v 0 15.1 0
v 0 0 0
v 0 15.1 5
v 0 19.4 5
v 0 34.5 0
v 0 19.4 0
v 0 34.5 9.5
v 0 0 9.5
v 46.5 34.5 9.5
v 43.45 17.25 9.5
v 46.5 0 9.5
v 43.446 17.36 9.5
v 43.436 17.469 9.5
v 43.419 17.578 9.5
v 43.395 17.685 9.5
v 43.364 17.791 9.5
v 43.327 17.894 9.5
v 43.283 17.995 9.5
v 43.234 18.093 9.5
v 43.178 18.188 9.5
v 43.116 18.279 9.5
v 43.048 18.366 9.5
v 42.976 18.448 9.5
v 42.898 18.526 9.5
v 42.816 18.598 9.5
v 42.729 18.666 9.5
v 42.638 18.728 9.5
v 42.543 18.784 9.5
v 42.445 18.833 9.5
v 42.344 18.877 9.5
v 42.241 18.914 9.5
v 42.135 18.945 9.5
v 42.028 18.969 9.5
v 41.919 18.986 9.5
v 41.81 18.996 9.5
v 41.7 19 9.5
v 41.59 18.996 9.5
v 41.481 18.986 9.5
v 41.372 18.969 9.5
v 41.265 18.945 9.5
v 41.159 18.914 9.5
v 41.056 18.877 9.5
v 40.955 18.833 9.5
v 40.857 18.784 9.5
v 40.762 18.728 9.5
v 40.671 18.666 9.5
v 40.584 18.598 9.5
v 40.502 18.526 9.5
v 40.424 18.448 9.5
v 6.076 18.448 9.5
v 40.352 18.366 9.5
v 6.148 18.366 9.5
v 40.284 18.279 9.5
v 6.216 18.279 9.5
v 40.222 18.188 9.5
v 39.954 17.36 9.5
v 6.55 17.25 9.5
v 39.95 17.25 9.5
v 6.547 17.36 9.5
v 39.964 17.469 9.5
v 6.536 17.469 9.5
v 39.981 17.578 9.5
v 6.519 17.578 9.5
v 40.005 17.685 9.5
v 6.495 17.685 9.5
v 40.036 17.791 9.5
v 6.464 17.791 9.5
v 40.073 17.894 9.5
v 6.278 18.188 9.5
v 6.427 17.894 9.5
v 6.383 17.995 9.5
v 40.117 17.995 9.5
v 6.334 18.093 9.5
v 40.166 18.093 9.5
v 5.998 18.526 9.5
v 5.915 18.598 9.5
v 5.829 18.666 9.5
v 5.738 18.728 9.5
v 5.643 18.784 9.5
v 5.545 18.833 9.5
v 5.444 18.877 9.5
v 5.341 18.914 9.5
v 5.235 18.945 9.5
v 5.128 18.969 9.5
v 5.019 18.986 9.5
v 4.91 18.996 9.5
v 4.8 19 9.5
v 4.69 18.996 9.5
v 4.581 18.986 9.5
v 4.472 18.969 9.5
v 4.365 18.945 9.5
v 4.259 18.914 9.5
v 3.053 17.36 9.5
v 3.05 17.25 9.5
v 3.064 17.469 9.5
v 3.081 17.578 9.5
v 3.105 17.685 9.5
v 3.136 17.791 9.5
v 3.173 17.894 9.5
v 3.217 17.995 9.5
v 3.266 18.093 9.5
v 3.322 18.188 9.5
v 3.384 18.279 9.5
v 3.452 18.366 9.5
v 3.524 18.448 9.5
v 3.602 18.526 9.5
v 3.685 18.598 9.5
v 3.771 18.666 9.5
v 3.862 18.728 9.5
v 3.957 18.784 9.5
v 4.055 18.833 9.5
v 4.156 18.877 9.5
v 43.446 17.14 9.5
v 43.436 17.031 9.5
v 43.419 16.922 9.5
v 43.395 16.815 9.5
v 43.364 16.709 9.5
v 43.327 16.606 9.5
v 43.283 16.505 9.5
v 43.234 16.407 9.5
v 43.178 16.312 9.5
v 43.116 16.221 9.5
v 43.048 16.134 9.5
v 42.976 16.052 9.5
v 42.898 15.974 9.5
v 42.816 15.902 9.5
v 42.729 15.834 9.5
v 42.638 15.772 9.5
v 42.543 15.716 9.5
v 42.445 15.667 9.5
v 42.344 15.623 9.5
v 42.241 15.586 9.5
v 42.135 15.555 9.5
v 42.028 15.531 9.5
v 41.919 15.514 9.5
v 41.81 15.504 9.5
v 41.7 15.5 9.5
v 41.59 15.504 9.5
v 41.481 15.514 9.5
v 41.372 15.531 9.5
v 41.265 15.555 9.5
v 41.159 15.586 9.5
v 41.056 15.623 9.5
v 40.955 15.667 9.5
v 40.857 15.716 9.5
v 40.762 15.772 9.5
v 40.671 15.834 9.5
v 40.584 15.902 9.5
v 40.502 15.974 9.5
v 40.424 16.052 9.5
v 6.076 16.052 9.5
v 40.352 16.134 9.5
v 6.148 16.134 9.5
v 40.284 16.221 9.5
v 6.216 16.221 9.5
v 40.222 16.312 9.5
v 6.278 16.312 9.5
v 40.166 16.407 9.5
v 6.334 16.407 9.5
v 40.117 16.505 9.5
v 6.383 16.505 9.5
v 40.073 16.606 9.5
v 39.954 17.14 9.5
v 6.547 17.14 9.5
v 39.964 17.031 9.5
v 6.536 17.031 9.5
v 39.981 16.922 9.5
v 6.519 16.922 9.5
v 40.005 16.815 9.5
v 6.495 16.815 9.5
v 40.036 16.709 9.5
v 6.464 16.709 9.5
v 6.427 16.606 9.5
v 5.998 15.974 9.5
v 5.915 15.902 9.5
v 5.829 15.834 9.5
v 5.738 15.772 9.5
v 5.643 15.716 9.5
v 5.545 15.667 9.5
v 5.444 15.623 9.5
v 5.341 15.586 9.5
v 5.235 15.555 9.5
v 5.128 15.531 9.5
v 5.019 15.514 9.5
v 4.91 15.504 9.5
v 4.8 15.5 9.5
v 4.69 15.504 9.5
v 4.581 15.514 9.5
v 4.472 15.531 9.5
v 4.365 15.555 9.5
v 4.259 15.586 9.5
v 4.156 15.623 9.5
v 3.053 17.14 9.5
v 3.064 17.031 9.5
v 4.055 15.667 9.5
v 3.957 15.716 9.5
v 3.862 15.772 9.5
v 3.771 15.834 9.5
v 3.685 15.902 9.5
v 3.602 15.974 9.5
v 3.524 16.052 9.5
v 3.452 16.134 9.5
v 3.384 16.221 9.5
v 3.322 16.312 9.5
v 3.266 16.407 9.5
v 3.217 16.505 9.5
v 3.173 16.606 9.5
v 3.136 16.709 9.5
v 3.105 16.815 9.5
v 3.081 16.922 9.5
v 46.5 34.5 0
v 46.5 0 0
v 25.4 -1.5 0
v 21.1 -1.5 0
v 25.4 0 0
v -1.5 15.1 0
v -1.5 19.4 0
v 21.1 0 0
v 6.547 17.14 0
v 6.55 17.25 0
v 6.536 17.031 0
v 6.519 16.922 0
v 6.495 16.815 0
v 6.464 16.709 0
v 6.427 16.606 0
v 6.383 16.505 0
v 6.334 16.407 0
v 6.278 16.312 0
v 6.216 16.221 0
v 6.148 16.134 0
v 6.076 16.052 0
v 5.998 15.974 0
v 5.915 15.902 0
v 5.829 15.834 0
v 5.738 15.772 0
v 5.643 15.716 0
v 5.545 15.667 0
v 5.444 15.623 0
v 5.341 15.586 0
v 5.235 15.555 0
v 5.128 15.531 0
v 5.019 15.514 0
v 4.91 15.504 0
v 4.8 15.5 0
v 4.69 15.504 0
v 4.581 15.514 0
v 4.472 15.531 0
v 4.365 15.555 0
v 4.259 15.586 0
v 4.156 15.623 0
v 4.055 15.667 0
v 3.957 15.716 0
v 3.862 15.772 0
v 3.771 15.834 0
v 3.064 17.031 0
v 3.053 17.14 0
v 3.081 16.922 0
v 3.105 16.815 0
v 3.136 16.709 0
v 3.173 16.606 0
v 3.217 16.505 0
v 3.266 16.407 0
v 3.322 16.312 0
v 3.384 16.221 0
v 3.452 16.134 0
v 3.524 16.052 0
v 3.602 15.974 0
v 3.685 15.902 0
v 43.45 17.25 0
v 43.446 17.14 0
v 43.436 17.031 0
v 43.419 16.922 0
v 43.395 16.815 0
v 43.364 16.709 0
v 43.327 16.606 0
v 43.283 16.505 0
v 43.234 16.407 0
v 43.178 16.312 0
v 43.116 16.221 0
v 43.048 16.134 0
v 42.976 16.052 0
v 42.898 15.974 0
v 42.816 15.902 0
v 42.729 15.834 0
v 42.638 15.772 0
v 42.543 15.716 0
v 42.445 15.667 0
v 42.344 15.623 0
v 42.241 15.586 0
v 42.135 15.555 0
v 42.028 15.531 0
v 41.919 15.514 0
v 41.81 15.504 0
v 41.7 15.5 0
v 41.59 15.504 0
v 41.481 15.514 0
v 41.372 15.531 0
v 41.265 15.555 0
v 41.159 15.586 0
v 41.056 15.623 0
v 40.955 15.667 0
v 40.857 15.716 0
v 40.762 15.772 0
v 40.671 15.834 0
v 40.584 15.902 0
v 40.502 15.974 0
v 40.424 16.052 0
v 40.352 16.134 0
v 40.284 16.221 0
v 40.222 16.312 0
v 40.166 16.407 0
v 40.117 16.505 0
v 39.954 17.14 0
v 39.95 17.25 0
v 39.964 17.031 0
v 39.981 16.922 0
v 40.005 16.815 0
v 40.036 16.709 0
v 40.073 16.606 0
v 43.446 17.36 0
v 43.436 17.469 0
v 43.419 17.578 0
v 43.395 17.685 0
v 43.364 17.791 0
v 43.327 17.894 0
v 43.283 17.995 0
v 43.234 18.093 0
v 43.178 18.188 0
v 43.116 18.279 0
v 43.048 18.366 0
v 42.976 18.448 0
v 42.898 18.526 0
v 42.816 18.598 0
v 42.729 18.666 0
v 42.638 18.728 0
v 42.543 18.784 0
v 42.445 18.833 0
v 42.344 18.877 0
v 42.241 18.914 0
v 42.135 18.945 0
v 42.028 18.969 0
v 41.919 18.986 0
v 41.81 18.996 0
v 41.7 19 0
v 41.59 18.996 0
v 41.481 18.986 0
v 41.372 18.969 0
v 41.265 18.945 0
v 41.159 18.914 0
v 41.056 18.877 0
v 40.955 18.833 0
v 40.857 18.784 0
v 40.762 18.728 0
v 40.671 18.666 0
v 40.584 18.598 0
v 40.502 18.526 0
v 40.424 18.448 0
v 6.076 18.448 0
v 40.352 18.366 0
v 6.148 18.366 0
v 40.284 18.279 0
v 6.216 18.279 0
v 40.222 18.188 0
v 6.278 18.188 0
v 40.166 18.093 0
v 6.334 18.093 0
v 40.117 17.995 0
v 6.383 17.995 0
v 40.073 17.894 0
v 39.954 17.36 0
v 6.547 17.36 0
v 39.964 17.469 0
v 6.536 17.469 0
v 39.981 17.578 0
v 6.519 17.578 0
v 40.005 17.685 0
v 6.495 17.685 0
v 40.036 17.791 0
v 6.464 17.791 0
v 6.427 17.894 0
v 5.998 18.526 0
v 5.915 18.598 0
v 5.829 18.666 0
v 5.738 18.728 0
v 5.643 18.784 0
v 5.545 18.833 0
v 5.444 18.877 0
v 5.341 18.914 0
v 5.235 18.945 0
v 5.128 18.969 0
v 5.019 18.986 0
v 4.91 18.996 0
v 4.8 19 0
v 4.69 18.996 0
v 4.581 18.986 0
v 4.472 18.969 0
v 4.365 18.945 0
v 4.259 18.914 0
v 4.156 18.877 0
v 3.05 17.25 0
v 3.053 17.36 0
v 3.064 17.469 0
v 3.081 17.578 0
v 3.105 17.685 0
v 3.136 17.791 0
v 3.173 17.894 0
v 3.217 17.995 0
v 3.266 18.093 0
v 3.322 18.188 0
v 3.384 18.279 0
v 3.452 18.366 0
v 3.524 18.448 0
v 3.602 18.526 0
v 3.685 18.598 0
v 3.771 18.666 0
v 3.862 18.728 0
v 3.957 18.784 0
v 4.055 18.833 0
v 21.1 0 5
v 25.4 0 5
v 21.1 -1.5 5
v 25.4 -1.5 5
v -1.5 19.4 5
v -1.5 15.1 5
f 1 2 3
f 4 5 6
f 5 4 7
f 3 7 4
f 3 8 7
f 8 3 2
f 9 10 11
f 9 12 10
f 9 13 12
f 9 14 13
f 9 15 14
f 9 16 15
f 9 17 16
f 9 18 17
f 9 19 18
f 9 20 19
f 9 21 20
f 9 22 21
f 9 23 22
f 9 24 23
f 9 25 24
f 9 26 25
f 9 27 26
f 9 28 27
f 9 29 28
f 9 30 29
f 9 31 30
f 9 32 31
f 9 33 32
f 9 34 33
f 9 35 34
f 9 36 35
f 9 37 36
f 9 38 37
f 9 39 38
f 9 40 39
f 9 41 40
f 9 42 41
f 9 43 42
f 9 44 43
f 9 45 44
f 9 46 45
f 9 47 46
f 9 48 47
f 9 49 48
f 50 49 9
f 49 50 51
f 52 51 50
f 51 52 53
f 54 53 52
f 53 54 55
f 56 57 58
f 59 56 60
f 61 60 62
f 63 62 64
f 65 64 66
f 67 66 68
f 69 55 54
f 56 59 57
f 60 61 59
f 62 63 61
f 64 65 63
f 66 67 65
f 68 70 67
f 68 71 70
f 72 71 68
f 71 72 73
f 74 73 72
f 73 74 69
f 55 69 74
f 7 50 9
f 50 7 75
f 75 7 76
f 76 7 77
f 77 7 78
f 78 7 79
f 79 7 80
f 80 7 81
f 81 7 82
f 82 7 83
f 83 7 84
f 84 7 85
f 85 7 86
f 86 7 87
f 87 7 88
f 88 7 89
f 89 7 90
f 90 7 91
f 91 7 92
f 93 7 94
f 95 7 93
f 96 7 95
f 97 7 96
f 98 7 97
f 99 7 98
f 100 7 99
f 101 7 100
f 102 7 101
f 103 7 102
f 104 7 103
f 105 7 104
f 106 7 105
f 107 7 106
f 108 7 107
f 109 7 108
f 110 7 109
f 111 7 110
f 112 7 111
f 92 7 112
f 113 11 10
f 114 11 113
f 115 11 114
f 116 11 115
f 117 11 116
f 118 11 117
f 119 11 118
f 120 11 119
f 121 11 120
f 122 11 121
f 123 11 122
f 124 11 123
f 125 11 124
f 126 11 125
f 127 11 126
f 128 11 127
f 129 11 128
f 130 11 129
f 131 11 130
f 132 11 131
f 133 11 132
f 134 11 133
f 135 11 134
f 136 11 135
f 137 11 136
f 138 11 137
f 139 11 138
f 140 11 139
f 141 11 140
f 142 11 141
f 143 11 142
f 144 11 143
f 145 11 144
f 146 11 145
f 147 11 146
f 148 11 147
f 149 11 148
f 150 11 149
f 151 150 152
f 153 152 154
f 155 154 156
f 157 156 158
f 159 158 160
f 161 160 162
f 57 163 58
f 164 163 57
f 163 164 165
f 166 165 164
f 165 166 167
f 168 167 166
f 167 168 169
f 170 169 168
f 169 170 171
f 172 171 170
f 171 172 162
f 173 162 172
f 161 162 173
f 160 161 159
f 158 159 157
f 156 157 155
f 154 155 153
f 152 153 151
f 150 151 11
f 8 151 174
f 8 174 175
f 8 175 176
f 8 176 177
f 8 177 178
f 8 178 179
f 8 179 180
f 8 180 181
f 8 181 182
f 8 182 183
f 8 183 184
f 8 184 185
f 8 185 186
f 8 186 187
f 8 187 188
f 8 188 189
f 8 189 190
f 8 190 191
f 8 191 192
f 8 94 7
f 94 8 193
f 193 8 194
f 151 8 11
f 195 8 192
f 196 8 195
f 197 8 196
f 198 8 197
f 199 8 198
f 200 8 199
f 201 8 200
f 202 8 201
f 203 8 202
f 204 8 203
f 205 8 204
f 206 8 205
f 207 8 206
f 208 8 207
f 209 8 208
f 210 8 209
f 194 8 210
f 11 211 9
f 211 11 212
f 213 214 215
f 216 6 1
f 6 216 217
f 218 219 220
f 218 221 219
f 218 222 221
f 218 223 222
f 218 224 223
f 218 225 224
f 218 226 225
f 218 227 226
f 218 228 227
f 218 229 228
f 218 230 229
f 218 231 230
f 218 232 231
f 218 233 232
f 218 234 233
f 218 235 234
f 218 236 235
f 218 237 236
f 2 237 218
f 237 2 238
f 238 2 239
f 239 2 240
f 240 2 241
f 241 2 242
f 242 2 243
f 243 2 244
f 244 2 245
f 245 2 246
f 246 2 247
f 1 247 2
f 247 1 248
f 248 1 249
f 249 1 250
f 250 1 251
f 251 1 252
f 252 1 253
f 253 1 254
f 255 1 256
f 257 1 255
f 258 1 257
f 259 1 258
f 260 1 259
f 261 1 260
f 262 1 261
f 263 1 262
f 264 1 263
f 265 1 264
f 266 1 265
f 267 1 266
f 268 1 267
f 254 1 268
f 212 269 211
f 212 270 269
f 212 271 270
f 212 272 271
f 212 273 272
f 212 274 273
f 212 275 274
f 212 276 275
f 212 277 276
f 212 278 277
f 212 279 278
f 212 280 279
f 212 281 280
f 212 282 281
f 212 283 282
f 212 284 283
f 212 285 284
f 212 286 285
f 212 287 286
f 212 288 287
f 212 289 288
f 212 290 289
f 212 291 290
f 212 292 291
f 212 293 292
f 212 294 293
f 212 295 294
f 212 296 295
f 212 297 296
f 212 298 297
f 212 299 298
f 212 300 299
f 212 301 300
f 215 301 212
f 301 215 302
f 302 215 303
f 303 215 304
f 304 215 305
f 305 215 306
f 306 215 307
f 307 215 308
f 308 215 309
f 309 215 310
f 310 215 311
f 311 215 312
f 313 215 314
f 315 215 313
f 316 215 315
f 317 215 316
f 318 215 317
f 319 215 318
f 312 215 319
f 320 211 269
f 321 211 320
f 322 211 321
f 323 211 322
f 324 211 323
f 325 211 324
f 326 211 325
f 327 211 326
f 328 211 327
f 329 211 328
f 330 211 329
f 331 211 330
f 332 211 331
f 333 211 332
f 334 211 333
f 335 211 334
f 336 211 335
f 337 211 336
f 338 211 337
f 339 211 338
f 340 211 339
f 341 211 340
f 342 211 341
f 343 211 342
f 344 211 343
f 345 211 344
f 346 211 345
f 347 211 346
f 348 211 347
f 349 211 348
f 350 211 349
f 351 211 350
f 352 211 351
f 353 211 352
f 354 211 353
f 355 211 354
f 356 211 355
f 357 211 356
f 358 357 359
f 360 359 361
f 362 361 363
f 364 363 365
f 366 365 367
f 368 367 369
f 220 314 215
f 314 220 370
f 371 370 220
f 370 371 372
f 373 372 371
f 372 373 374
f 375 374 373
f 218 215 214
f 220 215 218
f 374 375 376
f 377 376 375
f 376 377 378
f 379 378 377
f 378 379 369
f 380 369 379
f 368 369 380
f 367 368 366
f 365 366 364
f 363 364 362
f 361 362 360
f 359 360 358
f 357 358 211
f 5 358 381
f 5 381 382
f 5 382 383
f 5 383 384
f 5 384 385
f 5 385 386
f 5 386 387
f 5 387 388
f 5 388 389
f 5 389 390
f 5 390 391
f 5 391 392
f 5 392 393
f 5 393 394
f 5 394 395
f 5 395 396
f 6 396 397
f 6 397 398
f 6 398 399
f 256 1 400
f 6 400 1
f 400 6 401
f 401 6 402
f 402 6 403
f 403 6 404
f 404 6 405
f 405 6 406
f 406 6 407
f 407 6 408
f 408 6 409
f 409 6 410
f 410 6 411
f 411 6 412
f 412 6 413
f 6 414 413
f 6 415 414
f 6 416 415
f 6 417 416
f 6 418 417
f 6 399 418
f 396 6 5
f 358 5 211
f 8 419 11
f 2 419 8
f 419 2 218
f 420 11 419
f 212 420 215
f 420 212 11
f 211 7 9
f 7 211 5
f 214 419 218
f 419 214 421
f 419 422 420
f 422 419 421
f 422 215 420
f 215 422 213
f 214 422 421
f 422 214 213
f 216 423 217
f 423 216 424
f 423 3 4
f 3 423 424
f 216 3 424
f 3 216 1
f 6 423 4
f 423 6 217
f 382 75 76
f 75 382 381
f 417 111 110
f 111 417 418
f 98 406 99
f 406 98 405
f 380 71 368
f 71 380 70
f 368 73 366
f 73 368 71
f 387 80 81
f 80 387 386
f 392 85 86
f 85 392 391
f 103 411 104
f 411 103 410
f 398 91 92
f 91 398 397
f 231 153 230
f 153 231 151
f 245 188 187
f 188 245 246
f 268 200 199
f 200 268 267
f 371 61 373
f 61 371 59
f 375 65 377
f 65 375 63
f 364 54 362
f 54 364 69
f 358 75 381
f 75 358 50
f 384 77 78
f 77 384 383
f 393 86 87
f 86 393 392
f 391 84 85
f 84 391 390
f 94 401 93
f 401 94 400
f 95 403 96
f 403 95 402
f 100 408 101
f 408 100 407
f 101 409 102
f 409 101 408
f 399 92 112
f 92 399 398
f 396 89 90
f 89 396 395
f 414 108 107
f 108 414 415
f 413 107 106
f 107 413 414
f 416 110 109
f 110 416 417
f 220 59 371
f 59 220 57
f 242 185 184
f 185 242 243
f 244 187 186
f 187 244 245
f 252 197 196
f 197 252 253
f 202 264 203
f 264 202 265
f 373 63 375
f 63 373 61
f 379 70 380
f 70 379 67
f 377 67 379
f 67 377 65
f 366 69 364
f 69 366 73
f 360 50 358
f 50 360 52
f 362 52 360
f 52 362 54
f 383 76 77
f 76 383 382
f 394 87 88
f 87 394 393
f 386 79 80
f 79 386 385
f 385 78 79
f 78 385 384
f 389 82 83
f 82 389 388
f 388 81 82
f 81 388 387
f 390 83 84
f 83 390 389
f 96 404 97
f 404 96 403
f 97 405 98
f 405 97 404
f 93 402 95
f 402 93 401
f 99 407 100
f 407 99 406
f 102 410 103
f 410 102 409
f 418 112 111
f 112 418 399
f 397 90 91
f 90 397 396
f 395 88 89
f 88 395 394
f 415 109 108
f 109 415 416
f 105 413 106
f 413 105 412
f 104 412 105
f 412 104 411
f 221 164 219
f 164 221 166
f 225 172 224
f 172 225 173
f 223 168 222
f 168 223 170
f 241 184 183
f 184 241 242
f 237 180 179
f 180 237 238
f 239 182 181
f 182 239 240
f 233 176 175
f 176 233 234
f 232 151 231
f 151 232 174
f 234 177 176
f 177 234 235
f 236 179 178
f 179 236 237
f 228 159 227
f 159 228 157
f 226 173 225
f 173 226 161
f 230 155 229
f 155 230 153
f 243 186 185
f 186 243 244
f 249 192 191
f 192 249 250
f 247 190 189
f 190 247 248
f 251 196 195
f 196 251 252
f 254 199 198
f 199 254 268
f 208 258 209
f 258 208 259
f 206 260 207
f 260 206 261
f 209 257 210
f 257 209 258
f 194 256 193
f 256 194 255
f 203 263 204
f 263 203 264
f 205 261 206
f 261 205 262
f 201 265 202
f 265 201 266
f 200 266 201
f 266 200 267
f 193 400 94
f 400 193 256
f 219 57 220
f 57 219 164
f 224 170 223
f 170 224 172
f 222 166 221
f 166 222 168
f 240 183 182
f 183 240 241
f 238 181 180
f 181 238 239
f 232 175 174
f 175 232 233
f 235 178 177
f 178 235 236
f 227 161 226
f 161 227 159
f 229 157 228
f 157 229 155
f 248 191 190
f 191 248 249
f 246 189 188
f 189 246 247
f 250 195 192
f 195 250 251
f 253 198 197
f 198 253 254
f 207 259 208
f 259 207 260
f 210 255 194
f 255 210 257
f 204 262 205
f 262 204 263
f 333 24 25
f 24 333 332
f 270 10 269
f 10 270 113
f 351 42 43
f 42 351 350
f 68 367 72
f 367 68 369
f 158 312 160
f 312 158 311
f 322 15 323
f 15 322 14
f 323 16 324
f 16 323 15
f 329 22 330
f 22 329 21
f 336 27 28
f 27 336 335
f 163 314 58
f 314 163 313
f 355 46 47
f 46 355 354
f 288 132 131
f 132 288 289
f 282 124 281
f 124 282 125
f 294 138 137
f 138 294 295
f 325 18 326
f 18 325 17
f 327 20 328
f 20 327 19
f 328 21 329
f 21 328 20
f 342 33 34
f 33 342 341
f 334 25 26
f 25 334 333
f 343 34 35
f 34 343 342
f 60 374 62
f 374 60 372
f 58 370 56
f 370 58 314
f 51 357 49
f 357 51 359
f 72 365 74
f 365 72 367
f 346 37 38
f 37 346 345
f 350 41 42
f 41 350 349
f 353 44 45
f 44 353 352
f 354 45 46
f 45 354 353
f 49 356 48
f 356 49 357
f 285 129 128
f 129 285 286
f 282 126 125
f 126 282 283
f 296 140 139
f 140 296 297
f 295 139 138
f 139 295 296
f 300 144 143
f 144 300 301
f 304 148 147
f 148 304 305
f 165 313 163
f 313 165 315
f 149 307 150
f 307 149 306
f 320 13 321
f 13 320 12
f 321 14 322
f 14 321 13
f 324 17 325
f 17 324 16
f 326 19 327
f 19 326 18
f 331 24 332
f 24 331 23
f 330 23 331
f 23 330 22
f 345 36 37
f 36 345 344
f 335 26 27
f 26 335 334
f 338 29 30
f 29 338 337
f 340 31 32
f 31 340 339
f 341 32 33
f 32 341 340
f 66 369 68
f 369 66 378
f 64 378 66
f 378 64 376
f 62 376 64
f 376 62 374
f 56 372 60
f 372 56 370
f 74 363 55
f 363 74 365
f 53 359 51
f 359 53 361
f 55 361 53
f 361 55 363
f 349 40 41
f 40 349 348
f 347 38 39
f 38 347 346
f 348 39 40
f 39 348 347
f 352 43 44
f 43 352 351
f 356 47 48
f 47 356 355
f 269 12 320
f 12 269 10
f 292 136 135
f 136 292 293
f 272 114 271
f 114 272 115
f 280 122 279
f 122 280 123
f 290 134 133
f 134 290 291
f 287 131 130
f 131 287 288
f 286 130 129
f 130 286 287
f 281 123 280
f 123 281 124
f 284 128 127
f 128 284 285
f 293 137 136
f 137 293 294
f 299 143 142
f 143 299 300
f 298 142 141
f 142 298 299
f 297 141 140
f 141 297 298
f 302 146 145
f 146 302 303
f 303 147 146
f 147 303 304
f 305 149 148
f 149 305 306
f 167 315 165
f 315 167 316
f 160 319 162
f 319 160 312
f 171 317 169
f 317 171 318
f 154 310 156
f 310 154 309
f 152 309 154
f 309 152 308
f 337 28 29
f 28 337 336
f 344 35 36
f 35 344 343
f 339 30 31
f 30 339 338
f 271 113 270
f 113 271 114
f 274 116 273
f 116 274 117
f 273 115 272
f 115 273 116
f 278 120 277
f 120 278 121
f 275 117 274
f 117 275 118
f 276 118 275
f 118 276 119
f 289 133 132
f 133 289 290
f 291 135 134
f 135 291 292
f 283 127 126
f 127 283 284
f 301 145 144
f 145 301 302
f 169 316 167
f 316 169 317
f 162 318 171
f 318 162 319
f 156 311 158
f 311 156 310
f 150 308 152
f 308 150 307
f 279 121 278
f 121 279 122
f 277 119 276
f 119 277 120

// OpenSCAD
$fn=100;

color ("white")
{
    l=46.5;
    w=34.5;
    h=9.5;
    difference(){
        union()
        {
            //main
            cube([l,w,h]);
            //notch
            bl=4.3;
            bh=5;
            bw=1.5;
            translate([l/2-bl/2, -bw, 0]) cube([bl,bw,bh]);
            translate([-bw, w/2-bl/2, 0]) cube([bw,bl,bh]);
        }
        translate([4.8,w/2,0]) cylinder(d=3.5,h=h);
        translate([l-4.8,w/2,0]) cylinder(d=3.5,h=h);
    }
}
